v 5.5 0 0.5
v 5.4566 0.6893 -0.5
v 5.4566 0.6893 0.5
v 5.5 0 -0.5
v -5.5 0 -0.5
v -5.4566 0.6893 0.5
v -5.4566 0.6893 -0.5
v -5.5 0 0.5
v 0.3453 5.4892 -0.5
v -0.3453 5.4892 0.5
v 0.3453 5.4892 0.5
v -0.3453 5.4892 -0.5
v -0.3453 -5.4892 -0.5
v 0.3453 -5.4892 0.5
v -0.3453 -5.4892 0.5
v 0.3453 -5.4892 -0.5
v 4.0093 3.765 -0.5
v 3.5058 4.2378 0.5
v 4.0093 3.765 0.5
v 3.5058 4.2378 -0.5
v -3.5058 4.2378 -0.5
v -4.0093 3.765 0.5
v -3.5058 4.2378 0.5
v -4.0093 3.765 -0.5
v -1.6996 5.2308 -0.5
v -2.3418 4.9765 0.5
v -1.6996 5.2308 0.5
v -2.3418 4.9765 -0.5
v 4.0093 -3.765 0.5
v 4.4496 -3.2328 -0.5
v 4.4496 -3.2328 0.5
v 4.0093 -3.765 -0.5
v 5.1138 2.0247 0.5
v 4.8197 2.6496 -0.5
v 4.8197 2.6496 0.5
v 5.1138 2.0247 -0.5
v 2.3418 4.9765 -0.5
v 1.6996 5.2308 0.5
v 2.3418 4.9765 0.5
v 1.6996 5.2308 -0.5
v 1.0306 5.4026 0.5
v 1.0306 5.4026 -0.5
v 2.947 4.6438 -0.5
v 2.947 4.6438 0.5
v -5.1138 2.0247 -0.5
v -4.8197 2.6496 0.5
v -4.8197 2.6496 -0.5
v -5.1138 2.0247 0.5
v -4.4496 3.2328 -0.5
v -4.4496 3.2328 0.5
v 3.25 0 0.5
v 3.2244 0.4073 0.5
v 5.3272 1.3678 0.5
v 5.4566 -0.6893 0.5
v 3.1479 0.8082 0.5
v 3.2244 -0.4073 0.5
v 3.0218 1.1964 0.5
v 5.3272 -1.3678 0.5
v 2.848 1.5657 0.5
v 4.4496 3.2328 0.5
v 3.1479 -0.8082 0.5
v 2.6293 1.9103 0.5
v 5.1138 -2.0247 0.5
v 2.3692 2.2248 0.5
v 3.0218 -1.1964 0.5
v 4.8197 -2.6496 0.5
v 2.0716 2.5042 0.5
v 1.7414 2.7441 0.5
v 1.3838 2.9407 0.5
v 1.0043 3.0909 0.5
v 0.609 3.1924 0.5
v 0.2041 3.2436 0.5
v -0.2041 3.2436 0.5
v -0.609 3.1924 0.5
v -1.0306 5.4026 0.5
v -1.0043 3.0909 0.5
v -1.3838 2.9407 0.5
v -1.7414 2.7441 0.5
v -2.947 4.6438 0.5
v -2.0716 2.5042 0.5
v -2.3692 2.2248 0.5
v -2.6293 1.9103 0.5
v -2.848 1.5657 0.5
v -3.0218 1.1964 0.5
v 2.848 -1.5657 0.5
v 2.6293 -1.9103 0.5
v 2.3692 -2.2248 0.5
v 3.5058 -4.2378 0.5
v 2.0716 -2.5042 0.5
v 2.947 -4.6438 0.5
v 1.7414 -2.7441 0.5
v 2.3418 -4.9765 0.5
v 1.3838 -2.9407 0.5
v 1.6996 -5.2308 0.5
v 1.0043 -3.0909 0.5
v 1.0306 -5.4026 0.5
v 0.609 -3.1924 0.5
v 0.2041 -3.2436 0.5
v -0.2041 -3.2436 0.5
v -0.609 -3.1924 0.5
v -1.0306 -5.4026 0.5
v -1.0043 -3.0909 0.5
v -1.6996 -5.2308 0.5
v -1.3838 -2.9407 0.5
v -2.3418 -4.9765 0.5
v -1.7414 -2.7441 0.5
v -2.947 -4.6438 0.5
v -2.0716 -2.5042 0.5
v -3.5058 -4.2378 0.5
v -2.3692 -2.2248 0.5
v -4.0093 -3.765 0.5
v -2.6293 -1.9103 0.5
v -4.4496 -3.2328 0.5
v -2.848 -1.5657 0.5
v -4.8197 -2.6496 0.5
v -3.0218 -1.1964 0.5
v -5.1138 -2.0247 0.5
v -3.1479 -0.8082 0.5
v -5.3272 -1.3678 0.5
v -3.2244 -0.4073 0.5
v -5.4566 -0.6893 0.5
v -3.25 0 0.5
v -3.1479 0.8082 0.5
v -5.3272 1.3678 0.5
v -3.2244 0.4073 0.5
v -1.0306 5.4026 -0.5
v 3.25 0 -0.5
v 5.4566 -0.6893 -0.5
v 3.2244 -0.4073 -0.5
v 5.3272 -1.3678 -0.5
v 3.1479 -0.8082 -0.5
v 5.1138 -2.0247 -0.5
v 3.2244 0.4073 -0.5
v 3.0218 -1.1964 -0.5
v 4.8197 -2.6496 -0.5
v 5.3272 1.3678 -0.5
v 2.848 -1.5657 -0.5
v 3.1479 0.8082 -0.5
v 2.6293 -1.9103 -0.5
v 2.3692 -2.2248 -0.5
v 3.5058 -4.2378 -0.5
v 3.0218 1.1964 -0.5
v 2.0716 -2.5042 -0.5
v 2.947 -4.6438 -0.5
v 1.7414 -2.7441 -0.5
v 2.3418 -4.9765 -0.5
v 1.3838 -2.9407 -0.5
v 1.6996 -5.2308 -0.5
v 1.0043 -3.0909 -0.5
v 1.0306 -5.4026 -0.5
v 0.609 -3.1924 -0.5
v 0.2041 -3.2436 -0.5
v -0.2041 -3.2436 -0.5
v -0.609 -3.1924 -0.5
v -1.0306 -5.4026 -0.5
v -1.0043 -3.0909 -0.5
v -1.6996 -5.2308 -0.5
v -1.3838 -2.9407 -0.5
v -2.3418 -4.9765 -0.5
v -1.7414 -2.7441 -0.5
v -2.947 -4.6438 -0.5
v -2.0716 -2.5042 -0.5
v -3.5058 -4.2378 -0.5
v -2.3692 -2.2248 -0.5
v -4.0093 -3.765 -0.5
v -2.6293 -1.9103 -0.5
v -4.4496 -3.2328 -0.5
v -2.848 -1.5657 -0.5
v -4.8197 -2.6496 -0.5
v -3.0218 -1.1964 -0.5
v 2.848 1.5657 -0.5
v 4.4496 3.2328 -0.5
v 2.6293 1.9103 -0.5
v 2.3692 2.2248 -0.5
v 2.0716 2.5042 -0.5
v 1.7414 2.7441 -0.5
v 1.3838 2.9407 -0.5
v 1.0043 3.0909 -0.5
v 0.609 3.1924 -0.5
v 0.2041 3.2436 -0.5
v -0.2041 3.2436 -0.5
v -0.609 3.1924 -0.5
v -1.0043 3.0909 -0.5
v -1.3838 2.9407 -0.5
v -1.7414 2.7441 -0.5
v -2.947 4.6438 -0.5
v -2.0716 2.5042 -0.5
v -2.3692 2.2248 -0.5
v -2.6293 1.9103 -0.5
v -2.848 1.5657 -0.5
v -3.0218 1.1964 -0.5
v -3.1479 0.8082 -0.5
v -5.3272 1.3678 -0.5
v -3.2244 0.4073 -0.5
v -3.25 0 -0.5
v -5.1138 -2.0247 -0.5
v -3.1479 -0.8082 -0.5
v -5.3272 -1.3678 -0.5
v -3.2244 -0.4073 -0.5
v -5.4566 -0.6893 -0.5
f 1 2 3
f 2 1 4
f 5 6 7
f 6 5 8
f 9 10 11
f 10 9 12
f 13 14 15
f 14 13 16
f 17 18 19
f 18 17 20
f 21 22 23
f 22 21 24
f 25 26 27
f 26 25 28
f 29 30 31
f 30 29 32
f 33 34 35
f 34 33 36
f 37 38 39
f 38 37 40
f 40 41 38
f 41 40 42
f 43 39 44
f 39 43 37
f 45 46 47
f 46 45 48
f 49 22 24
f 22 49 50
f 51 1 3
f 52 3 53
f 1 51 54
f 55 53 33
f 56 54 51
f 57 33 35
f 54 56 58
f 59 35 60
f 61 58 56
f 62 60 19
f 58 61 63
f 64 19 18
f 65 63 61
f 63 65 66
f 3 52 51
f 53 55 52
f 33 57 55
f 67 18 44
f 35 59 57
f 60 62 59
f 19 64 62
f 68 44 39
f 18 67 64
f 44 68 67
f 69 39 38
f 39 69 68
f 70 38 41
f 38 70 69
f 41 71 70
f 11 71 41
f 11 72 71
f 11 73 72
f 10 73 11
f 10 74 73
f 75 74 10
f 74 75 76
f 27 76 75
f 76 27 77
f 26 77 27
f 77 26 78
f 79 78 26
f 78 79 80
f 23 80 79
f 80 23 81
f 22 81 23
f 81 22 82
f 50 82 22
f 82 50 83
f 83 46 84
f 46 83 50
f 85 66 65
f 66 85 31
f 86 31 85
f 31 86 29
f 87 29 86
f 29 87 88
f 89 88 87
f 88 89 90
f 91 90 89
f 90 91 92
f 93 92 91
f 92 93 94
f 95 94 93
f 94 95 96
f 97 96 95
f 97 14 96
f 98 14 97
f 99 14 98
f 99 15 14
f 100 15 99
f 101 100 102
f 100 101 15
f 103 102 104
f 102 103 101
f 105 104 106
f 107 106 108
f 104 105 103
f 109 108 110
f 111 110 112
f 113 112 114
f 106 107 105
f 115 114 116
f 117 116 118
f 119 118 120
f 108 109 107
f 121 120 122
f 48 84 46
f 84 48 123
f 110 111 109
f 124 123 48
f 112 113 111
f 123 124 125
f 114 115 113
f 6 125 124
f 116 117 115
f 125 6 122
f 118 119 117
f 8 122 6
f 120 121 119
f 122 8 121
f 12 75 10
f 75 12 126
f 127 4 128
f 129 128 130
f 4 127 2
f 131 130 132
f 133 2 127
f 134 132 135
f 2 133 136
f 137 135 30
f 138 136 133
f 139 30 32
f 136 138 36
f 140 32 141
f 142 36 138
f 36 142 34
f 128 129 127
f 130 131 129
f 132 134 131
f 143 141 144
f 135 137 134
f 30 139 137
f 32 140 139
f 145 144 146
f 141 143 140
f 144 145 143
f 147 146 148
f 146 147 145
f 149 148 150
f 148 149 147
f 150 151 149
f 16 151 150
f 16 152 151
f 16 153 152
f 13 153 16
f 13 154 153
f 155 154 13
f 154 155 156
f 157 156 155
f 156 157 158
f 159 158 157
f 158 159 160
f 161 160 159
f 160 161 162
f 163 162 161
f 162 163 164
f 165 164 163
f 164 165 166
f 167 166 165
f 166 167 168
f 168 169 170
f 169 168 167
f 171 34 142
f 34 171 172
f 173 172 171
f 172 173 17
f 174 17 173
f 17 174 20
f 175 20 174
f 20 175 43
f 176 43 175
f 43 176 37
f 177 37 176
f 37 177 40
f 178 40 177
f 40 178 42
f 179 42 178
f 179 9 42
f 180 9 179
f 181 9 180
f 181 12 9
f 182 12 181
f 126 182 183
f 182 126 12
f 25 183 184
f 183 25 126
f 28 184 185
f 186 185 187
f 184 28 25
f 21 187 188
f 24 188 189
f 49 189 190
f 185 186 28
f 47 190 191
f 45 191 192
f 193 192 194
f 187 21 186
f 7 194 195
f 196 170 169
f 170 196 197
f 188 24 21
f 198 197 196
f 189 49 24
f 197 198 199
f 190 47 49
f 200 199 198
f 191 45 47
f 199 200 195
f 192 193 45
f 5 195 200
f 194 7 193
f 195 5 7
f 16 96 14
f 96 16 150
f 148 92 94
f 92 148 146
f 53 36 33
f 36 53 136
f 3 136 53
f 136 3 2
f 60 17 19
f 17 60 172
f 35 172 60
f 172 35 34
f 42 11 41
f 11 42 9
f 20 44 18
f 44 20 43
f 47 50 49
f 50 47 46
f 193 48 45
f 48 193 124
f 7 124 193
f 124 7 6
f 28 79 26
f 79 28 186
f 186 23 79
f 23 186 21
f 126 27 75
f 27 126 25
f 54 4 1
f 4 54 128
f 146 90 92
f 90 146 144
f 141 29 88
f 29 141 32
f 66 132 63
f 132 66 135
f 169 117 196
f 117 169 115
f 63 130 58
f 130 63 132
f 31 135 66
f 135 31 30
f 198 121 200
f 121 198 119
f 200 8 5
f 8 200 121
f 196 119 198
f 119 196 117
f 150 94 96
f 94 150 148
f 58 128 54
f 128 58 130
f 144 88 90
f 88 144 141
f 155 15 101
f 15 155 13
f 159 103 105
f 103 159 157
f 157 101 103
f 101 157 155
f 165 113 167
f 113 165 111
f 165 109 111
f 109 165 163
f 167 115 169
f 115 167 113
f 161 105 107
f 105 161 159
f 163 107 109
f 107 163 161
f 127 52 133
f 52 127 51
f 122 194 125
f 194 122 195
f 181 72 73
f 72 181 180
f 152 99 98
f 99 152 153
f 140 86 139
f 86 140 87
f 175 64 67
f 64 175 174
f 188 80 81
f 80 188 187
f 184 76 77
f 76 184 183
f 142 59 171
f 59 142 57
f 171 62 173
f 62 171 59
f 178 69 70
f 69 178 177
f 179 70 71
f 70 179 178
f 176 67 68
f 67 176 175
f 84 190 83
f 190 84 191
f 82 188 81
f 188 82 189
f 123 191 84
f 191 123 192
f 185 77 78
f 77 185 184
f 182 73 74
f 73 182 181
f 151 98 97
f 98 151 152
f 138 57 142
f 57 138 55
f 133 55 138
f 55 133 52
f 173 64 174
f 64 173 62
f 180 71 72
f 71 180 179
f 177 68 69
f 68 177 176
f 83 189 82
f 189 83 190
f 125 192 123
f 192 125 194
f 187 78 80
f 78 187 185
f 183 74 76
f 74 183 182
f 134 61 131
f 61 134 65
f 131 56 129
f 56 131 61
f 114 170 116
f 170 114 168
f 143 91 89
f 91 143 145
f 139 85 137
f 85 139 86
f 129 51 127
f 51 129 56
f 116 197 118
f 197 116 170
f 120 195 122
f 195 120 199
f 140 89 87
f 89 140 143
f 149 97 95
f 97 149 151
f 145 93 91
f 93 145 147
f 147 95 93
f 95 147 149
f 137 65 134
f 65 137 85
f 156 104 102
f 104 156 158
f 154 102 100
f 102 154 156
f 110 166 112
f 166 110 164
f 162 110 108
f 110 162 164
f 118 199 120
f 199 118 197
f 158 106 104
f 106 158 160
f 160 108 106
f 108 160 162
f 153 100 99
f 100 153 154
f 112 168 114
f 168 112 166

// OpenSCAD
$fn = 50;


difference() {
	union() {
		translate(v = [0, 0, -0.5000000000]) {
			cylinder(h = 1, r = 5.5000000000);
		}
	}
	union() {
		translate(v = [0, 0, -100.0000000000]) {
			cylinder(h = 200, r = 3.2500000000);
		}
	}
}
